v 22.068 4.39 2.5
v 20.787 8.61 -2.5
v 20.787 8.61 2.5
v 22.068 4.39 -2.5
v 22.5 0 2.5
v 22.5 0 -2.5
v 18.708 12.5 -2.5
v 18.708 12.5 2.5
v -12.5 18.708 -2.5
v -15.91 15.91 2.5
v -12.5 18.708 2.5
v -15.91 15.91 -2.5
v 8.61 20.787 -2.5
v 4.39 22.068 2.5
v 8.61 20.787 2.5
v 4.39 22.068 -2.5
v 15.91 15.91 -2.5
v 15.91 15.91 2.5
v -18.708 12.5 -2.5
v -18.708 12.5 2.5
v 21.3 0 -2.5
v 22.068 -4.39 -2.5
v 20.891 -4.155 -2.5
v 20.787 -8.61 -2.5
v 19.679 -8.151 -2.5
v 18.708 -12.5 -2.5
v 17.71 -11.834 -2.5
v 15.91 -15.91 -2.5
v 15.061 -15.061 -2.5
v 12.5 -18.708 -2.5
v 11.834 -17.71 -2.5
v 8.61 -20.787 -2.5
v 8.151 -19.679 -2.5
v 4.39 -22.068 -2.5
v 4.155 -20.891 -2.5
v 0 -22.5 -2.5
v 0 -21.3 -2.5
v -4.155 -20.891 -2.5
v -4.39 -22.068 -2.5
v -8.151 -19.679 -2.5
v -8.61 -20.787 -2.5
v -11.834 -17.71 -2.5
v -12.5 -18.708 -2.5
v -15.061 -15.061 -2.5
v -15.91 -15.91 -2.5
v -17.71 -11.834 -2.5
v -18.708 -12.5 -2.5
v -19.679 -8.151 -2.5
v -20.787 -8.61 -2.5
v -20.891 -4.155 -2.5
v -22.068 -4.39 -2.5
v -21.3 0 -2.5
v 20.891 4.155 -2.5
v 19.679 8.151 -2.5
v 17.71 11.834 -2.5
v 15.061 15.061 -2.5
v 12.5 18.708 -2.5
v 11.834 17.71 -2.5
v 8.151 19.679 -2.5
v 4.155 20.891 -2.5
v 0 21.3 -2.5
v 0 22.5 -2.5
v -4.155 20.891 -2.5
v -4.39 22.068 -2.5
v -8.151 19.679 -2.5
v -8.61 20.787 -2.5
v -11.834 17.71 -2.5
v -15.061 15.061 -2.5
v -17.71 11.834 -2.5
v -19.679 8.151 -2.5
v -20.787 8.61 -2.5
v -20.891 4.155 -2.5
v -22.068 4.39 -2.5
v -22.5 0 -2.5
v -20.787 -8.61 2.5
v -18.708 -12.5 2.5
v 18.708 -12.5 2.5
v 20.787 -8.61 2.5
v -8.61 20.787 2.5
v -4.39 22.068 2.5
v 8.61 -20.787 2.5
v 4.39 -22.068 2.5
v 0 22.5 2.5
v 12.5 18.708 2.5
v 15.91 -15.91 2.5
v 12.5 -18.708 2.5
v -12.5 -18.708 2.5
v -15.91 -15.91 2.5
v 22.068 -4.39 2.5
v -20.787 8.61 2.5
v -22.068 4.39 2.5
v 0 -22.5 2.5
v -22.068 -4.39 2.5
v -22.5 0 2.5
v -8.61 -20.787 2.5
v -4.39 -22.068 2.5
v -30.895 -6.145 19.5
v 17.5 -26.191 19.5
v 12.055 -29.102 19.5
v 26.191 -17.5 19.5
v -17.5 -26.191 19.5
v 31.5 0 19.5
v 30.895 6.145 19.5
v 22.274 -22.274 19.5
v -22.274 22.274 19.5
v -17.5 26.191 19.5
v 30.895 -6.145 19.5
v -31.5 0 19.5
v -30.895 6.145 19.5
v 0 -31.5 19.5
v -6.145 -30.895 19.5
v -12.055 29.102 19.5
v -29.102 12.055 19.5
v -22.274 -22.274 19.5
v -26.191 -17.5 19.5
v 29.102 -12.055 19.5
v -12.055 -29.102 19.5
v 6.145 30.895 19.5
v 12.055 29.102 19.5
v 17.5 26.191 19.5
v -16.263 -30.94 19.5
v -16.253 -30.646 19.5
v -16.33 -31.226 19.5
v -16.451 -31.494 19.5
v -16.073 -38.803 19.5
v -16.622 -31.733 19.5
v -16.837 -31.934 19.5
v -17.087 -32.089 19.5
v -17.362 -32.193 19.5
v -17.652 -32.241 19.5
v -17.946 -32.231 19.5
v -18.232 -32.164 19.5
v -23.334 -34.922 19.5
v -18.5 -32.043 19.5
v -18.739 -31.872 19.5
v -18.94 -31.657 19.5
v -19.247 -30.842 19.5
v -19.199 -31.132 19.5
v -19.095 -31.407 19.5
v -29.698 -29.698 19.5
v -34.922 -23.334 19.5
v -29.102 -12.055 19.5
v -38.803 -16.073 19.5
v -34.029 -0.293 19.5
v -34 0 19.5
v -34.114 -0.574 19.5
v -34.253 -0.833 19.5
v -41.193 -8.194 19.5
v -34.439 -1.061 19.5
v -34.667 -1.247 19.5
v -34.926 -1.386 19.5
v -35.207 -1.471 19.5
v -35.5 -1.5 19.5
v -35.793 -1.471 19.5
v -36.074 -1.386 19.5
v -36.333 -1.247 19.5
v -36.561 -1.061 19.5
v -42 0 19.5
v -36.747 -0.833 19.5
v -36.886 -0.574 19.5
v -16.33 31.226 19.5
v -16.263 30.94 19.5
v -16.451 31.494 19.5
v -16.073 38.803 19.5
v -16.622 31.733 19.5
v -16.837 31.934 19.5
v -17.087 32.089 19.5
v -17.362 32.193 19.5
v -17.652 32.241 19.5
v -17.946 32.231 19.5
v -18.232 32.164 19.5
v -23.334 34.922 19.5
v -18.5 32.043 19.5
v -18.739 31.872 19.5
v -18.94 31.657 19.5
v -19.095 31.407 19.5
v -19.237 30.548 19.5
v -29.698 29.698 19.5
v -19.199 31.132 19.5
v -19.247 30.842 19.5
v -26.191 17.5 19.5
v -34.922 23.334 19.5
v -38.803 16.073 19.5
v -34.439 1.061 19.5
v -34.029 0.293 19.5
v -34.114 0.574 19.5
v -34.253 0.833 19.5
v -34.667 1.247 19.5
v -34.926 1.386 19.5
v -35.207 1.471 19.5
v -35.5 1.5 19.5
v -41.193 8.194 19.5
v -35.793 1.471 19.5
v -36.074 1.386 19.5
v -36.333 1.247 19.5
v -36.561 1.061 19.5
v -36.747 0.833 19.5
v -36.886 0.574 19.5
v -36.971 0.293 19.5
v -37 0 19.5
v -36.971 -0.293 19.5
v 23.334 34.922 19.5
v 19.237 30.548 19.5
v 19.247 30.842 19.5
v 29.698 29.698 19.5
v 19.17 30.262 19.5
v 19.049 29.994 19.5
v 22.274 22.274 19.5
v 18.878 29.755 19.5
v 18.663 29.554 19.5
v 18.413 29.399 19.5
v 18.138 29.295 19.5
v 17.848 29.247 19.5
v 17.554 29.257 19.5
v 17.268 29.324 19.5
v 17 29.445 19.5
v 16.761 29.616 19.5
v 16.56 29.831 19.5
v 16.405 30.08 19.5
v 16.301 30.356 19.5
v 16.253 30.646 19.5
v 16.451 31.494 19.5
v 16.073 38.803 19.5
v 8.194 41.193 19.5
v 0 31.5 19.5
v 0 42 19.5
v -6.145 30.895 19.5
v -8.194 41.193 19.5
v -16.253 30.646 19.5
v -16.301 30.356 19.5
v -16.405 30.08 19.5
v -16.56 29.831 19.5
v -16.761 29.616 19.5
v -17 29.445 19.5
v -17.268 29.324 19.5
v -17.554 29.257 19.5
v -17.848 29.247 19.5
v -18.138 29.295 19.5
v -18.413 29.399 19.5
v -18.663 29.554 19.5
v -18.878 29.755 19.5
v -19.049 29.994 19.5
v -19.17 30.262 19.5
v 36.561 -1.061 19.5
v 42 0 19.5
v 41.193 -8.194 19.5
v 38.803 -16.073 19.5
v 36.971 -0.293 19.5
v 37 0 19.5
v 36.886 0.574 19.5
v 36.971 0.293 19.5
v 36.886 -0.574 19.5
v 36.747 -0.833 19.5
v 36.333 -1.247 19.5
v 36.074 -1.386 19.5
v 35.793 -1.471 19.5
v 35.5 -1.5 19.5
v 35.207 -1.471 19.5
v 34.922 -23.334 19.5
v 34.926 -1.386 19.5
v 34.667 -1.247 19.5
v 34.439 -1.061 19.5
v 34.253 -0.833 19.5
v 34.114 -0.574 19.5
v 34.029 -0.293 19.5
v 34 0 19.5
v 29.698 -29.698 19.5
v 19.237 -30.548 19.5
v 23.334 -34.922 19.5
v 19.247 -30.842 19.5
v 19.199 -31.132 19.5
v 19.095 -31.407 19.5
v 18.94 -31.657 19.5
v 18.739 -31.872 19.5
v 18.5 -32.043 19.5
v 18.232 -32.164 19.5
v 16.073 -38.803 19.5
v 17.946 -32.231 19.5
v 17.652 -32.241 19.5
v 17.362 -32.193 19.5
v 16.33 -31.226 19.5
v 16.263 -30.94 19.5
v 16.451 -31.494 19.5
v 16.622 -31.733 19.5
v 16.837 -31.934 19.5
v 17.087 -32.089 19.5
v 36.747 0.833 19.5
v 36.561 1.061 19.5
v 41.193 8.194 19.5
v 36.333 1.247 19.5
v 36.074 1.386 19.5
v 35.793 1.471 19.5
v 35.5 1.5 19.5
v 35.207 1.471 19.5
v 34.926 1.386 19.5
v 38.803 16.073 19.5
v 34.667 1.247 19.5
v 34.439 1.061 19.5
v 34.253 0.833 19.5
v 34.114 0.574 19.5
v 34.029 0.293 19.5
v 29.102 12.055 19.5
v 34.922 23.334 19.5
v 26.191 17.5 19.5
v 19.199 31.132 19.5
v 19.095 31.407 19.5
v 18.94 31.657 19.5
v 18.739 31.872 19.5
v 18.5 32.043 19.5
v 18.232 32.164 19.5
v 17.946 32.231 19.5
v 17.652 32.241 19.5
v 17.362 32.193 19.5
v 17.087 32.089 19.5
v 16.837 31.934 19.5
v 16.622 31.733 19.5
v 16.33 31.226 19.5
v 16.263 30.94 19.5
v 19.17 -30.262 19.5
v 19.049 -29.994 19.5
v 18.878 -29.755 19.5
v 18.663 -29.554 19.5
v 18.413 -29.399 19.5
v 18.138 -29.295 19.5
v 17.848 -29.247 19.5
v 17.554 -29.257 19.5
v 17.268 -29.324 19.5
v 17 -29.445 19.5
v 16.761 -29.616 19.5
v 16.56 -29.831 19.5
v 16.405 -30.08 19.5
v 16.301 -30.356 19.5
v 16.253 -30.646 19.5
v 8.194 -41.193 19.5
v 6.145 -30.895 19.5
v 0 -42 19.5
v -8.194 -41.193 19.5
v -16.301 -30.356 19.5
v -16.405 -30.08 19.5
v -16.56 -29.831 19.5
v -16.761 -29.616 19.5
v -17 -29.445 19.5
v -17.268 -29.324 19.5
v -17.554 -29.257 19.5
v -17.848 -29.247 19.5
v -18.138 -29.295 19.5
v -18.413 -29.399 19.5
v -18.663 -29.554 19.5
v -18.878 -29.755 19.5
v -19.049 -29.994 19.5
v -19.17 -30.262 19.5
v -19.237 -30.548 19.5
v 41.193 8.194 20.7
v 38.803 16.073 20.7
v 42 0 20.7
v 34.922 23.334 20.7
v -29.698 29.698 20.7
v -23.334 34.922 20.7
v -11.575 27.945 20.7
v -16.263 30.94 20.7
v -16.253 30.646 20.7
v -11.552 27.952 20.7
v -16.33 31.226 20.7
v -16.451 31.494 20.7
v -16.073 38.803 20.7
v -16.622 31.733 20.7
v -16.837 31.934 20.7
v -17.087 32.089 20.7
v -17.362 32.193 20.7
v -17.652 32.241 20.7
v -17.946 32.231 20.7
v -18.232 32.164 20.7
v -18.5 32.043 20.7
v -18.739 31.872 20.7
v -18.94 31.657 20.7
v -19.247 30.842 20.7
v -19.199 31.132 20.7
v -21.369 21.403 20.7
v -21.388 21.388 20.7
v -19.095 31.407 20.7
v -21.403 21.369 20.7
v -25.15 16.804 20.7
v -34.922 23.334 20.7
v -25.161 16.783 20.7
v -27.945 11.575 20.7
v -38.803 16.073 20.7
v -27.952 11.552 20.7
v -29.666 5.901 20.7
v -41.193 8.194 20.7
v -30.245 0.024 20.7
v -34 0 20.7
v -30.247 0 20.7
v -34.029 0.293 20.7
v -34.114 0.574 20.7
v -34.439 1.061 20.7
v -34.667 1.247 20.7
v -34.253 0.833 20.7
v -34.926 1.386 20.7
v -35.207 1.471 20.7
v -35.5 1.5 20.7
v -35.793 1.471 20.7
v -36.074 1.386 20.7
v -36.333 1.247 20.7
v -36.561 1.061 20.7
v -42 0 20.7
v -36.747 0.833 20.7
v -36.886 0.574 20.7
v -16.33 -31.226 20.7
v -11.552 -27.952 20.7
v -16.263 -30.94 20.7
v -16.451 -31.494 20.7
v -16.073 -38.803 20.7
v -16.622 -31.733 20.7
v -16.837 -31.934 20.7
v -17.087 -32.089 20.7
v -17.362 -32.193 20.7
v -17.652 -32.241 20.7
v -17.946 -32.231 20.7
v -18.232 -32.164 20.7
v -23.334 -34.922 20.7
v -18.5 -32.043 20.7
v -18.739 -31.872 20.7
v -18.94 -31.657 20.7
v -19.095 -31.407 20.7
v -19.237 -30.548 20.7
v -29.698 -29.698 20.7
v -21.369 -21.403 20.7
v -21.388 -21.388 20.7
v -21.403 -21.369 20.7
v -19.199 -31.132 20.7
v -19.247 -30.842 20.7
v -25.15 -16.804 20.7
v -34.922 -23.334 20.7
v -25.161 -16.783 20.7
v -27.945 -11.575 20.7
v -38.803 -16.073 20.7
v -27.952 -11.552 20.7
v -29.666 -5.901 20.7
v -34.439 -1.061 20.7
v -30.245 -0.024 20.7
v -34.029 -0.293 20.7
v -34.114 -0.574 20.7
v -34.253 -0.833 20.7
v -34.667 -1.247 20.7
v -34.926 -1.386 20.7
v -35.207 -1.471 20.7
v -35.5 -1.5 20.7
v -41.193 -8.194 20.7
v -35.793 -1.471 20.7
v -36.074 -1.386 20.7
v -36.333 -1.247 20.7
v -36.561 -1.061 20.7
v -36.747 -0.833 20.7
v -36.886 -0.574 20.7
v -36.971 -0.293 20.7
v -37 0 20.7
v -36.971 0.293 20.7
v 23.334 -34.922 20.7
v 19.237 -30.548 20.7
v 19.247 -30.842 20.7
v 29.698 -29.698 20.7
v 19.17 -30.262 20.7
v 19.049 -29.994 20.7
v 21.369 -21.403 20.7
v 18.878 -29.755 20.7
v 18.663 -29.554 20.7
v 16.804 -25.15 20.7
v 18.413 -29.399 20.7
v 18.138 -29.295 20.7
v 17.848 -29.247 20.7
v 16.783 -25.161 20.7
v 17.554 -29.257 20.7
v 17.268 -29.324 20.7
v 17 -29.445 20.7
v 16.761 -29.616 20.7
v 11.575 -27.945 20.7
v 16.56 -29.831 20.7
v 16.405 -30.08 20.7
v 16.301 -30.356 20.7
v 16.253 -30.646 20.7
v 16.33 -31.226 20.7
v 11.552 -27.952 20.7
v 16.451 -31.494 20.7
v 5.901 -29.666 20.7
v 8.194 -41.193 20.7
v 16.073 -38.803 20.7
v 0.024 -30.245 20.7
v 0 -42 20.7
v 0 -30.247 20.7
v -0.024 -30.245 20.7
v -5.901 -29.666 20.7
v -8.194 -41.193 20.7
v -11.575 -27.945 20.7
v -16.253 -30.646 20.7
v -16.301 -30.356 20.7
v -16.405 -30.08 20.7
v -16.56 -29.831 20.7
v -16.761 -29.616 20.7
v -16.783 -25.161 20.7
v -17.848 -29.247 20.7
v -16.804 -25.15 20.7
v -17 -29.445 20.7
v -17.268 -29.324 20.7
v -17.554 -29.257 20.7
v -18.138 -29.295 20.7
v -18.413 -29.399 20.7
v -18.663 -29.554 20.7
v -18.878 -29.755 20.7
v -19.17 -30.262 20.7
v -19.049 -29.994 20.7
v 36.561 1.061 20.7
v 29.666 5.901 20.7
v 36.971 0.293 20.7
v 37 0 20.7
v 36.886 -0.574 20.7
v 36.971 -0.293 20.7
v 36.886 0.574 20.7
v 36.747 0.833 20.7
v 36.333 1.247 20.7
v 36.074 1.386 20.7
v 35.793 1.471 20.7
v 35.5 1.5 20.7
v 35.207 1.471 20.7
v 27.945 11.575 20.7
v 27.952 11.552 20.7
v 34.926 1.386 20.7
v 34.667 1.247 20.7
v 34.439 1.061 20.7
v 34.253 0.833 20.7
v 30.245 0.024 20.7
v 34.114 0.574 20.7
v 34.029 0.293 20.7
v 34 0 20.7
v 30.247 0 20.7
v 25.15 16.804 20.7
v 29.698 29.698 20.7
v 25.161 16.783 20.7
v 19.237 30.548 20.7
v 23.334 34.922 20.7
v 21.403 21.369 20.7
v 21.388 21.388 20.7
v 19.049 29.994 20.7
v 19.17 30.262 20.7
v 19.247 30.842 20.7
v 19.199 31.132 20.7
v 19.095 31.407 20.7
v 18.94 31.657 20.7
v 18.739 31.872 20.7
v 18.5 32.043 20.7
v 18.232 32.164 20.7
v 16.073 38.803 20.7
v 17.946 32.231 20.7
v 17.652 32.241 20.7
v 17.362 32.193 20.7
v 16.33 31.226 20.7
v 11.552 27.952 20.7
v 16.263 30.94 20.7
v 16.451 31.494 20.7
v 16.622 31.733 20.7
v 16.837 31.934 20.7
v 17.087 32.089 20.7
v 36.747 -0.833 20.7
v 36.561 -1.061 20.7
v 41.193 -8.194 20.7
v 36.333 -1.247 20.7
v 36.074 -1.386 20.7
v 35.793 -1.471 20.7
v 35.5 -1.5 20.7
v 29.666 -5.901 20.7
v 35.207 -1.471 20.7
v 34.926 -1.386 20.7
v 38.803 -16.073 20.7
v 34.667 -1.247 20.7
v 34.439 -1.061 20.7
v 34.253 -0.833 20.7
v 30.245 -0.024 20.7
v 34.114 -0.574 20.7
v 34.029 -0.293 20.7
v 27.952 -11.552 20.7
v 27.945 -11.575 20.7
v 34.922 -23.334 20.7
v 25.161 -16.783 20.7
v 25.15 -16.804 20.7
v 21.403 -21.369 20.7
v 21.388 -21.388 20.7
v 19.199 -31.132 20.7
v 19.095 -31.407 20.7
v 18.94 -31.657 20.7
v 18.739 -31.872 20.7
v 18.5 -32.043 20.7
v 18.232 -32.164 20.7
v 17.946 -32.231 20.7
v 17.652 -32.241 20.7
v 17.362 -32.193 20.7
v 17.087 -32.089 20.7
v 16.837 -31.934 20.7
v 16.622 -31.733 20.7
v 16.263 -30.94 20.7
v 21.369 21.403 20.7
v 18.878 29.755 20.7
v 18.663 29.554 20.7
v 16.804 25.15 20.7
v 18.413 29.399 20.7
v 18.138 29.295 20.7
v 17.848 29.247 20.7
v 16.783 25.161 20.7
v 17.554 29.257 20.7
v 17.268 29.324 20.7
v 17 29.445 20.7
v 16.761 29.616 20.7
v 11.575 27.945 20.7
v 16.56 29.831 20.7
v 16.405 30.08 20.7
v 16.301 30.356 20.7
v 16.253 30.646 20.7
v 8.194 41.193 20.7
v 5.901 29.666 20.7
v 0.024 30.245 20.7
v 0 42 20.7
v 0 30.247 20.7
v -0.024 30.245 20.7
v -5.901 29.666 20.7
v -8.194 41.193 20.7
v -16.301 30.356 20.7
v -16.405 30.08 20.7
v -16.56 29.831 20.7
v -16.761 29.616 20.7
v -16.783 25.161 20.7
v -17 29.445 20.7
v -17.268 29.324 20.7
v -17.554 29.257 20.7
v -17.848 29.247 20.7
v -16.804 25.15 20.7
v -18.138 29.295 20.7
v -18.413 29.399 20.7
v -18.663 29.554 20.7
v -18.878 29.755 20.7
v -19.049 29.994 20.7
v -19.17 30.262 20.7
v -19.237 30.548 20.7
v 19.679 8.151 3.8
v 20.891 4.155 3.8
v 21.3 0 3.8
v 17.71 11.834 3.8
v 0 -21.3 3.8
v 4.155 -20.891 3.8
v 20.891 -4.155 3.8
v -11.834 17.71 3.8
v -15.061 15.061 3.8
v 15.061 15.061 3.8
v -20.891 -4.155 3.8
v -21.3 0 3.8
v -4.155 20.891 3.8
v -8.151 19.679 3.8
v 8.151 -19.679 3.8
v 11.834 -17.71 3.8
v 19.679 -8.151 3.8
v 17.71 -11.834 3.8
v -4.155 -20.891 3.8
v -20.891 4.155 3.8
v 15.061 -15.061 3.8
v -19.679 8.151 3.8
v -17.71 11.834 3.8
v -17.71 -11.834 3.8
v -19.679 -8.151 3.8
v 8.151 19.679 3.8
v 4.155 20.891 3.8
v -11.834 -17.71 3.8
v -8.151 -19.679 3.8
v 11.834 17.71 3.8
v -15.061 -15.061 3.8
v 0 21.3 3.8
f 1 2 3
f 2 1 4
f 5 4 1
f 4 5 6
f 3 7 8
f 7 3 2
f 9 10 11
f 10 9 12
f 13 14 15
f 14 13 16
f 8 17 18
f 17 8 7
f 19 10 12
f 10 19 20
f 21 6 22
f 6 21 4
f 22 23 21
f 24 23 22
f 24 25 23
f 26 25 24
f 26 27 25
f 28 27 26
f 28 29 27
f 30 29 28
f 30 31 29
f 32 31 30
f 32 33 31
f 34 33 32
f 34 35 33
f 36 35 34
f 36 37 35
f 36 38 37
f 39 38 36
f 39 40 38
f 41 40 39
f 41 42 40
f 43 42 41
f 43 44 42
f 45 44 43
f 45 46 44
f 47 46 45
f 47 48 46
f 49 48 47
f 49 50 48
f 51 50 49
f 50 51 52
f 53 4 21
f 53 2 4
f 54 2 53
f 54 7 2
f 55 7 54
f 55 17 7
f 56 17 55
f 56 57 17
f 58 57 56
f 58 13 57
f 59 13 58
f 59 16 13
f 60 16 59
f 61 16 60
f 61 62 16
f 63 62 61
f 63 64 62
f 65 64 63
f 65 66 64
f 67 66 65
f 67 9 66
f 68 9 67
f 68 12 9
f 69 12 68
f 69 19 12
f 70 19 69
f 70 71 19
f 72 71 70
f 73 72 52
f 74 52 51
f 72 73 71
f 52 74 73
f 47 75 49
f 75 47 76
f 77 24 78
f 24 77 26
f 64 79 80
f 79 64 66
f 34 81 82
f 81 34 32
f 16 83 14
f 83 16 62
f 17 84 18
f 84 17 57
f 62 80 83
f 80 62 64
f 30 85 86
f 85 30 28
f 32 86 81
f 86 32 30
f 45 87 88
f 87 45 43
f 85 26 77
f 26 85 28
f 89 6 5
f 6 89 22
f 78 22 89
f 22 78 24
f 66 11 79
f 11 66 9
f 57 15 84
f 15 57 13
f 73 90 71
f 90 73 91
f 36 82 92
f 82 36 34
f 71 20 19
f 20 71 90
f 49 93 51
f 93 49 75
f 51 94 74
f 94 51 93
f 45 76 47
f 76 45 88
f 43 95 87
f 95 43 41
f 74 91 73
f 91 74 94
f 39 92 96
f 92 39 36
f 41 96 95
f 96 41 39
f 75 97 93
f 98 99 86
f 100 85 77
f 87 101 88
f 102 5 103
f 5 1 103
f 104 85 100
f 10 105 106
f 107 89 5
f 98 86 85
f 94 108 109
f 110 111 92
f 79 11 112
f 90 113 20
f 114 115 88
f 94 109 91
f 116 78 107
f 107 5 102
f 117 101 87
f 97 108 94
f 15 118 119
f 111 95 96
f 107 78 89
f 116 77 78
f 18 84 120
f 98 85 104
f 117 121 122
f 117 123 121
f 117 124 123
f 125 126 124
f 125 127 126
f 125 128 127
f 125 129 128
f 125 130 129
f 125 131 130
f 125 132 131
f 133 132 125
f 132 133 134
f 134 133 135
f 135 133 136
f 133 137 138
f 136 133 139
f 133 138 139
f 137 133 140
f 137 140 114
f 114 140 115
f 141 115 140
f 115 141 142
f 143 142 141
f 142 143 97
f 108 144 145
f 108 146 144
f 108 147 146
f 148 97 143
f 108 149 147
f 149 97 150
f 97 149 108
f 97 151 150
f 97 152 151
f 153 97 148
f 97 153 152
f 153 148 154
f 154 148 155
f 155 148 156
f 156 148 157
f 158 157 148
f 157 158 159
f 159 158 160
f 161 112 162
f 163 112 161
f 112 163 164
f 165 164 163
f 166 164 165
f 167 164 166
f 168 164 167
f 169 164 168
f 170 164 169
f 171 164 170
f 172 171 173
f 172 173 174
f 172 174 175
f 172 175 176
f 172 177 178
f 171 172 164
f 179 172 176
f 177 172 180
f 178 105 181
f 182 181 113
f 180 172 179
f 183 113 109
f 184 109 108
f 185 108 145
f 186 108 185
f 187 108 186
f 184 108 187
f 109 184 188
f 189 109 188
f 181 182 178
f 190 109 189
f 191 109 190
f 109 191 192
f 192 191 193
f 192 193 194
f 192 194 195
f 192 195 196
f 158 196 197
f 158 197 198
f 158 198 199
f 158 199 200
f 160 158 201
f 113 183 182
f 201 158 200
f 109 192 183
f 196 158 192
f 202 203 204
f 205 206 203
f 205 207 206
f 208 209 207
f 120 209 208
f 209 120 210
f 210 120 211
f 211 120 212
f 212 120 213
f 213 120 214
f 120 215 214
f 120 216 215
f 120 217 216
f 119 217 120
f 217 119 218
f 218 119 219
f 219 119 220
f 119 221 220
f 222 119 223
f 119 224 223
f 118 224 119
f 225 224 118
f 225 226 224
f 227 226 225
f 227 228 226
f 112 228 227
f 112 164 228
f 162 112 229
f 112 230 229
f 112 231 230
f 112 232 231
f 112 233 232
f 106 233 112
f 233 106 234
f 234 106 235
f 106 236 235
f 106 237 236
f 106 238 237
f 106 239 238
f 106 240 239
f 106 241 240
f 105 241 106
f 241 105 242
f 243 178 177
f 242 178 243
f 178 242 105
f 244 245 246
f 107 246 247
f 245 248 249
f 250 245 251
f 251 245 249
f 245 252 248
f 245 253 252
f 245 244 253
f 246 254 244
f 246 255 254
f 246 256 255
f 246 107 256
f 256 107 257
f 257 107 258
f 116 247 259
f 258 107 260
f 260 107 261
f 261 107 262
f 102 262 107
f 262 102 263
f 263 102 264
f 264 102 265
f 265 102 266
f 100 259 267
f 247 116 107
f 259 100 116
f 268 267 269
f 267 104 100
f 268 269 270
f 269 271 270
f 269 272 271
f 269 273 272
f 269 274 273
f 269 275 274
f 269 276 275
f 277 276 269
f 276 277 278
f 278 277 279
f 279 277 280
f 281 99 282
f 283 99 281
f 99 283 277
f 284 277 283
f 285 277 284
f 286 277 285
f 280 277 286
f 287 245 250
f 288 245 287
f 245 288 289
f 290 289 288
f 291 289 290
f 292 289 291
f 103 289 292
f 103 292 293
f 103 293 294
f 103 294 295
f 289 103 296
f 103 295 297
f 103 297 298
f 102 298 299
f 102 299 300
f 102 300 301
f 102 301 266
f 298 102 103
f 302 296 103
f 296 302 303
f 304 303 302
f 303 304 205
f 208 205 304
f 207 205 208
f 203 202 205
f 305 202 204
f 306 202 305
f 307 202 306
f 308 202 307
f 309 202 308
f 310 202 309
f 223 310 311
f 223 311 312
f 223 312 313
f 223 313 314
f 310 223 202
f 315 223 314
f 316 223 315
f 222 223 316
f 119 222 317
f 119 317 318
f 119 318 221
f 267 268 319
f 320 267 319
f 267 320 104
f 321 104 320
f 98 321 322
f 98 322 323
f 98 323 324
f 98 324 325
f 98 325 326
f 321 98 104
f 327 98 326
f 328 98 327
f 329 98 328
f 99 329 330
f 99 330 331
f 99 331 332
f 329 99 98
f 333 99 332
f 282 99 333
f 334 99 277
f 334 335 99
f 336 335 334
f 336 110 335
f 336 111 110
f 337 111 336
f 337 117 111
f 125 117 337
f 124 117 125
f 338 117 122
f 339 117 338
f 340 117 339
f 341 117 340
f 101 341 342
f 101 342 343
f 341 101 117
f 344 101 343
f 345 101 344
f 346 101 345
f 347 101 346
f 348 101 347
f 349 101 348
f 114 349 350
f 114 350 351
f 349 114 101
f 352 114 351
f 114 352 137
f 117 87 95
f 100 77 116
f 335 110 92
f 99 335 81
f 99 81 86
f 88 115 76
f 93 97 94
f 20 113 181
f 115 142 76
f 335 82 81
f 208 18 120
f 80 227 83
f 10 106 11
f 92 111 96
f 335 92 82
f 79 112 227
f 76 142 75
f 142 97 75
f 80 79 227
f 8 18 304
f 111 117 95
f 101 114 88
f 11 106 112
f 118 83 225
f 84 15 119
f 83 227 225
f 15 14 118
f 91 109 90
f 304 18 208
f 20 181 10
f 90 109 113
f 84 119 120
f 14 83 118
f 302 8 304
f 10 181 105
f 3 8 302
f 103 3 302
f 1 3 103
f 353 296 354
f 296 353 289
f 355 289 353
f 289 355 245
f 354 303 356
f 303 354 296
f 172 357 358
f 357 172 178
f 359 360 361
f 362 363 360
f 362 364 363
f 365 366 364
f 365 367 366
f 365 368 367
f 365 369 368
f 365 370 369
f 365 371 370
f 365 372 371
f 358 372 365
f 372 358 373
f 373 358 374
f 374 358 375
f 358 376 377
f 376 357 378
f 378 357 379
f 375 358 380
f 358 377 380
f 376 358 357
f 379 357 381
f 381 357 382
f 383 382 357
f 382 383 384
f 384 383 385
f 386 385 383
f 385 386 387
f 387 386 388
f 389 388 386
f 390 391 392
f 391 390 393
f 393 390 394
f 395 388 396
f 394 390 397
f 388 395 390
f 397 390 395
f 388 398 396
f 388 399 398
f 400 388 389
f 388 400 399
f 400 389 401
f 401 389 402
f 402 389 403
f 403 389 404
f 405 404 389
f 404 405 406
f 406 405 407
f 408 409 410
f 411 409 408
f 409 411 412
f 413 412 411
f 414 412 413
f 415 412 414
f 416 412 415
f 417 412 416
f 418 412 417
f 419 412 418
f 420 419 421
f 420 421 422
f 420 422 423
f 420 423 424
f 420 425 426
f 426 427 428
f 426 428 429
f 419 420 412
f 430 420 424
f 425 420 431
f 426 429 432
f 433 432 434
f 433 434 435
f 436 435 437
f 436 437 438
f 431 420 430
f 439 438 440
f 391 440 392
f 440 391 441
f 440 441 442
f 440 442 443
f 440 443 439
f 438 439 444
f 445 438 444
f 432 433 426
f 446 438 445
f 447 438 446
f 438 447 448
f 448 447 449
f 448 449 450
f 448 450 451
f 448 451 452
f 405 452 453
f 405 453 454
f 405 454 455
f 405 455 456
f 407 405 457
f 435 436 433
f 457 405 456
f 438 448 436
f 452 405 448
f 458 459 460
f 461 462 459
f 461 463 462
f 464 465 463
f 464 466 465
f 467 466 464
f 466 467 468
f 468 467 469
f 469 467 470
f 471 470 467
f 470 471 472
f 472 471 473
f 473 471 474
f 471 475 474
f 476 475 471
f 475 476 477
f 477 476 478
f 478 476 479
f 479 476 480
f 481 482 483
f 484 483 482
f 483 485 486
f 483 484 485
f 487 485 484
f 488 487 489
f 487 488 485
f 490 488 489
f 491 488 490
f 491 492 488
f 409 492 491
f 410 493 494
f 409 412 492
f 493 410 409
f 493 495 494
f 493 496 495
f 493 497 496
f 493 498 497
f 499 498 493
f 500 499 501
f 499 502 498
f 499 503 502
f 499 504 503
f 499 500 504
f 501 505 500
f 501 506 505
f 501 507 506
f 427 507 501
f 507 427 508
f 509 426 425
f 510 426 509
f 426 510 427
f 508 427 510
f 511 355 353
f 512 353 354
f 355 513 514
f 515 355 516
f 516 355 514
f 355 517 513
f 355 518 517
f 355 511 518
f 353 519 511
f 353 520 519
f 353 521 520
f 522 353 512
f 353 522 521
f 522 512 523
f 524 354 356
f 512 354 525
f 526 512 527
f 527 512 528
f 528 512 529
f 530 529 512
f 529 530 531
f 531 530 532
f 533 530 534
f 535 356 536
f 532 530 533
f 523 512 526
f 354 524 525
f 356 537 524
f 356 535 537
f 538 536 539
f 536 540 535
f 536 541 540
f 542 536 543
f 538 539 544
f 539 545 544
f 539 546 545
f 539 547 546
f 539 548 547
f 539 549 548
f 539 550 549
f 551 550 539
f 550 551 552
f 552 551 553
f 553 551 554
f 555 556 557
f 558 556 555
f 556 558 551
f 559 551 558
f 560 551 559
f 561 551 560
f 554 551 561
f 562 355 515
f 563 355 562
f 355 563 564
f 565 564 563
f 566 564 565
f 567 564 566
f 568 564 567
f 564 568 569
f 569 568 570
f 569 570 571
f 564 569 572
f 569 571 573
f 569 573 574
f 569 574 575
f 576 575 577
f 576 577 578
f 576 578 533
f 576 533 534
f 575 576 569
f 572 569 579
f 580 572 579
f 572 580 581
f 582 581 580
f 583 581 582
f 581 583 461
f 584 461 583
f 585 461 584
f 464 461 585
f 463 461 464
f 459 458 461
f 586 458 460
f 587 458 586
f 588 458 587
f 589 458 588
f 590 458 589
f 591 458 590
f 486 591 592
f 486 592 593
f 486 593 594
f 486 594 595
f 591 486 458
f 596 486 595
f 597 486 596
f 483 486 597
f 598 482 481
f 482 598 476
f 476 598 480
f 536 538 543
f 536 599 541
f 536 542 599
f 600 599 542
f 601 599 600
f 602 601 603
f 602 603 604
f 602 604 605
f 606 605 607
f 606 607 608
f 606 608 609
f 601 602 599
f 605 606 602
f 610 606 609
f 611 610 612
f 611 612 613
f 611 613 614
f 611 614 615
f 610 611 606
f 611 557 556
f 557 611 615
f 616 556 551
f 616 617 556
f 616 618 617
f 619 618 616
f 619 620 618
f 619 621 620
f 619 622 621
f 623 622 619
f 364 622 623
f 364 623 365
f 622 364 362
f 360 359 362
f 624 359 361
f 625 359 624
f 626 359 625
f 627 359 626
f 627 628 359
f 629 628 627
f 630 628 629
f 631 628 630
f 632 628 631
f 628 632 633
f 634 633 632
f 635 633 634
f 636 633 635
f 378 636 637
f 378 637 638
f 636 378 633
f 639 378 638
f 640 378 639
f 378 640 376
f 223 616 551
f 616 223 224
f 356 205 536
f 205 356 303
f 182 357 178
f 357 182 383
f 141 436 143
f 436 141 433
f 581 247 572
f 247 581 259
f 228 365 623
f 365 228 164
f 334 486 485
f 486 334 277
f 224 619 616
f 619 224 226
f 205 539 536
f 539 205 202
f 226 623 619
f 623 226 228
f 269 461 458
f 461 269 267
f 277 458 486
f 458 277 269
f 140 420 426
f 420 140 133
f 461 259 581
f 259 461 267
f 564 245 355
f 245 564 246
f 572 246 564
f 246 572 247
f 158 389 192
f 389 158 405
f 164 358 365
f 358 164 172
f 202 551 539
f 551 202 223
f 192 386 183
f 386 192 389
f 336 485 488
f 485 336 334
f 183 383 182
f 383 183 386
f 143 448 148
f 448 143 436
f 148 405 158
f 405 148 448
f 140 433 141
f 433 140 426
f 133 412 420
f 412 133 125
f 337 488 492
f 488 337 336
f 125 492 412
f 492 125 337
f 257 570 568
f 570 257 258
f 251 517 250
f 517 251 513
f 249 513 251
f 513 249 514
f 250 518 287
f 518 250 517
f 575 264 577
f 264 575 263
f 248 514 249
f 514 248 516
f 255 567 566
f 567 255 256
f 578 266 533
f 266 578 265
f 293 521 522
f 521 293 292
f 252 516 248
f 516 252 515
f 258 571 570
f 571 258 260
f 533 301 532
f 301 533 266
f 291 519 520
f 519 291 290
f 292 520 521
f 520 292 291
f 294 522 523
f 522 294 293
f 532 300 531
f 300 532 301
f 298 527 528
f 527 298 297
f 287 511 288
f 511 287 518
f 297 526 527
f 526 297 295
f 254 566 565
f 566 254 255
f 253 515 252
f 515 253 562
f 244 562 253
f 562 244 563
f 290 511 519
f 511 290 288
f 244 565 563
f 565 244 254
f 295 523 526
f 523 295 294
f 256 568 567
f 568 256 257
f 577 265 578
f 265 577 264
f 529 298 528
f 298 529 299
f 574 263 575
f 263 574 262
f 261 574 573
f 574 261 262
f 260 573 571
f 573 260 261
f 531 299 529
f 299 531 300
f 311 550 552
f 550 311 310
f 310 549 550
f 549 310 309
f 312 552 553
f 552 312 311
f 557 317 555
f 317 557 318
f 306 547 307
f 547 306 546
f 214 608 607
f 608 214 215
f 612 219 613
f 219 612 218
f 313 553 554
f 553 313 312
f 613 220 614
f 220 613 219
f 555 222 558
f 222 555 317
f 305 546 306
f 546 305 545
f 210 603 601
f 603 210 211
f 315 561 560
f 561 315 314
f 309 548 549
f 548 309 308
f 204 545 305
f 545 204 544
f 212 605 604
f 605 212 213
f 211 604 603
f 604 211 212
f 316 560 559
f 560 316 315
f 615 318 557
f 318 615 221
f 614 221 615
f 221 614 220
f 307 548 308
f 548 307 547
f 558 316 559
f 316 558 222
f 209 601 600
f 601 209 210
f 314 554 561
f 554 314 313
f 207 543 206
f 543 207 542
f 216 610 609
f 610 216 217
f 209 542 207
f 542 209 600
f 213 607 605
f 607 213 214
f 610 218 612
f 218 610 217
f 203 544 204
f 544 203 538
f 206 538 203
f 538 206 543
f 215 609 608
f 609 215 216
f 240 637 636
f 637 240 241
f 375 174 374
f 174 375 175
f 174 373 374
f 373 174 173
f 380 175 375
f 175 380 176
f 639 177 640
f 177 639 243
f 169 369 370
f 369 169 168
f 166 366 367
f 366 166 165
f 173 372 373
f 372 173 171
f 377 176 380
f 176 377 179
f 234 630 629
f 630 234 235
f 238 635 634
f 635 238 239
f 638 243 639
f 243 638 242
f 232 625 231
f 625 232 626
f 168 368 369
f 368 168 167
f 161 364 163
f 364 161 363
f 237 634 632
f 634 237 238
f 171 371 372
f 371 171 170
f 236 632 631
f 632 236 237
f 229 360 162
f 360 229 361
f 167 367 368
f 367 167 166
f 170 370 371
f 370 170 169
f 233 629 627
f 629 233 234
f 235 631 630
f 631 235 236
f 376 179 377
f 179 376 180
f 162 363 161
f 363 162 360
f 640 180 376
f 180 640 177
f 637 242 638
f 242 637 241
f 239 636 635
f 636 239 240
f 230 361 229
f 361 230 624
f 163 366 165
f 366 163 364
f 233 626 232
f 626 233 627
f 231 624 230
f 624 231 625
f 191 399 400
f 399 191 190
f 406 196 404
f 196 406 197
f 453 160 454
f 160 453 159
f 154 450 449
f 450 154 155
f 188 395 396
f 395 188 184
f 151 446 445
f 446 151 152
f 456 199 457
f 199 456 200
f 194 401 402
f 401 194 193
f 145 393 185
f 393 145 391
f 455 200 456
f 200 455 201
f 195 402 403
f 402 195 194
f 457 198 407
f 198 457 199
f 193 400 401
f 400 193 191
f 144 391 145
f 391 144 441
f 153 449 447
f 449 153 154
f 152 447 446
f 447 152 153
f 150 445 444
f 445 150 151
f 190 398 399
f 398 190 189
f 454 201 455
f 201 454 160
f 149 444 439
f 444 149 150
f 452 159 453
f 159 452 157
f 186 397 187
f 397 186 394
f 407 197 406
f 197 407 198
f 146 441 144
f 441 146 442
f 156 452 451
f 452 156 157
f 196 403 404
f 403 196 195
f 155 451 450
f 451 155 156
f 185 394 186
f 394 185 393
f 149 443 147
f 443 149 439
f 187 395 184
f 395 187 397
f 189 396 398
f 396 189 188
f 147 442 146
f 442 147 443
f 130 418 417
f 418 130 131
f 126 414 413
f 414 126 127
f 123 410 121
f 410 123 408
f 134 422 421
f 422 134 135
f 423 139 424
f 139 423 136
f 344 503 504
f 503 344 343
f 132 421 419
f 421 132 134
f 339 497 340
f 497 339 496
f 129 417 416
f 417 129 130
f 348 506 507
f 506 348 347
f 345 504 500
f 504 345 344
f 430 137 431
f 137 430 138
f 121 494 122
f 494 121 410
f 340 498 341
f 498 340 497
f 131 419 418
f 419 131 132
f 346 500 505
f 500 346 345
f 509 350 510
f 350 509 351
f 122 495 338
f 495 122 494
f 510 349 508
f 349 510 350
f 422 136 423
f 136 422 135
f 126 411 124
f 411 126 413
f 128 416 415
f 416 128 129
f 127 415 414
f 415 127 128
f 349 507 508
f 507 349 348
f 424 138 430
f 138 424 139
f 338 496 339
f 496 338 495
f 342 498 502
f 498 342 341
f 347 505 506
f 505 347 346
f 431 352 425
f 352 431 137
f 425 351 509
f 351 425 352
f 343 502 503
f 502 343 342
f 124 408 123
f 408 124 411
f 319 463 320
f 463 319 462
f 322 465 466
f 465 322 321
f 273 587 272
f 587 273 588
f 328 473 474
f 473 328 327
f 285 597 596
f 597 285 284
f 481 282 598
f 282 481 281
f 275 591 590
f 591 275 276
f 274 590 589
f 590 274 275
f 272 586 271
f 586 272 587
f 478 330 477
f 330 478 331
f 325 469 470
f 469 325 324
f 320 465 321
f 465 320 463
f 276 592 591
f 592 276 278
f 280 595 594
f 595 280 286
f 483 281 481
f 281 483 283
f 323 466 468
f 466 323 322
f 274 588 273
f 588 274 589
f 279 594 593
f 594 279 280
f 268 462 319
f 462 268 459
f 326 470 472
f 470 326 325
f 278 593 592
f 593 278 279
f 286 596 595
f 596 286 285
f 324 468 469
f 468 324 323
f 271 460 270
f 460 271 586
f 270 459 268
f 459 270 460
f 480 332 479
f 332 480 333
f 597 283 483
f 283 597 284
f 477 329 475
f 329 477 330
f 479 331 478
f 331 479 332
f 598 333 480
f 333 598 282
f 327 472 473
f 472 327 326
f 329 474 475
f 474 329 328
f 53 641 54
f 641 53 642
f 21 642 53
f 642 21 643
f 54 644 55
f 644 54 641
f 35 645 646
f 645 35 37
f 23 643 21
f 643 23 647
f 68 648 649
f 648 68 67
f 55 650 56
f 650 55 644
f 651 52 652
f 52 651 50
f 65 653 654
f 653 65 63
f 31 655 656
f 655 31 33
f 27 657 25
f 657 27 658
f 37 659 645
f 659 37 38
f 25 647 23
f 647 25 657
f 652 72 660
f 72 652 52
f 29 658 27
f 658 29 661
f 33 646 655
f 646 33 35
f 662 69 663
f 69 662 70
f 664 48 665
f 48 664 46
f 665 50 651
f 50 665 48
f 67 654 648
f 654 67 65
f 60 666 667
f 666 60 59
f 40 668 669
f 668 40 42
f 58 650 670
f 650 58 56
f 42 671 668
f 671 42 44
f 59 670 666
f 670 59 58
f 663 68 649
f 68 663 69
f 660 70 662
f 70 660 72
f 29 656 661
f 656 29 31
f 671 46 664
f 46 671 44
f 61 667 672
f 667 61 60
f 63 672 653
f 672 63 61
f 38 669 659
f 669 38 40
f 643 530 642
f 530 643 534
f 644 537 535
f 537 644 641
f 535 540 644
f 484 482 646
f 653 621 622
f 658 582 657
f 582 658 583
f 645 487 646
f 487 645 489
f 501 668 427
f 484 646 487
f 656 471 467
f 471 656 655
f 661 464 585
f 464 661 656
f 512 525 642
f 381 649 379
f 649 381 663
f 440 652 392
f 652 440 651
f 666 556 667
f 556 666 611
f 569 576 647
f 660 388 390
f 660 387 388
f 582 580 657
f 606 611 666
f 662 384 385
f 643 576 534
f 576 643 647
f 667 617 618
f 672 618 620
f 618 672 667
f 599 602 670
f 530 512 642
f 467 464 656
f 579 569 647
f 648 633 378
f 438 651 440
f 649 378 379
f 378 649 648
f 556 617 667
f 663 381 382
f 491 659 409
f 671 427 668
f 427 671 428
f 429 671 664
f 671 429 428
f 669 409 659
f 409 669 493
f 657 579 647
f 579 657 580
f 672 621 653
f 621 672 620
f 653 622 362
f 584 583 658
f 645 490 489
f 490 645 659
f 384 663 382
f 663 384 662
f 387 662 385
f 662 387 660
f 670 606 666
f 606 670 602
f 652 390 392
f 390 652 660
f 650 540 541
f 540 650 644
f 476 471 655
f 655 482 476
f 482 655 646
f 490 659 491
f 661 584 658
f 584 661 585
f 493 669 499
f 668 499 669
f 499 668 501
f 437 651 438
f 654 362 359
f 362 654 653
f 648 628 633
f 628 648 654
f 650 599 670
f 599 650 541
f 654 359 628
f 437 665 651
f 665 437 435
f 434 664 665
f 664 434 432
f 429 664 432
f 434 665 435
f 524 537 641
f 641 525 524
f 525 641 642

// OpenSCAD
$fn=32;

Espesor=1.2; 

DiametroAbajo=45;
DiametroInternoArriba=63;
DiametroExternoArriba=84;
DiametroAgujeros = 3;
Altura = 17;


module Solido(){
    // Primero cilindro que entra en la cavidad:
    cylinder(d=DiametroAbajo, h=5, center=true);

    // Ahora el "cono"
    translate([0,0,5/2+Altura/2]) cylinder(d2=DiametroInternoArriba, d1=DiametroAbajo, h=Altura, center=true);

    //Ahora el disco que apoya arriba
    translate([0,0,5/2+Altura+Espesor/2]) cylinder(d=DiametroExternoArriba,  h=Espesor, center=true);

}

difference(){
    Solido();
    translate([0,0,+Altura/2])
        cylinder(d=DiametroAbajo-2*Espesor, h=5+Altura+Espesor+10, center=true);
    translate([0,0,5/2+Altura/2+Espesor+.1]) cylinder(d2=DiametroInternoArriba-2*Espesor, d1=DiametroAbajo-2*Espesor, h=Altura, center=true);
    // Los agujeros
    for ( i = [ 0 : 60 : 360  ]){
        rotate([0,0,i])
            translate([71/2,0,Altura+5/2]) cylinder(d=DiametroAgujeros, h=5,center=true);
    }
}




//
